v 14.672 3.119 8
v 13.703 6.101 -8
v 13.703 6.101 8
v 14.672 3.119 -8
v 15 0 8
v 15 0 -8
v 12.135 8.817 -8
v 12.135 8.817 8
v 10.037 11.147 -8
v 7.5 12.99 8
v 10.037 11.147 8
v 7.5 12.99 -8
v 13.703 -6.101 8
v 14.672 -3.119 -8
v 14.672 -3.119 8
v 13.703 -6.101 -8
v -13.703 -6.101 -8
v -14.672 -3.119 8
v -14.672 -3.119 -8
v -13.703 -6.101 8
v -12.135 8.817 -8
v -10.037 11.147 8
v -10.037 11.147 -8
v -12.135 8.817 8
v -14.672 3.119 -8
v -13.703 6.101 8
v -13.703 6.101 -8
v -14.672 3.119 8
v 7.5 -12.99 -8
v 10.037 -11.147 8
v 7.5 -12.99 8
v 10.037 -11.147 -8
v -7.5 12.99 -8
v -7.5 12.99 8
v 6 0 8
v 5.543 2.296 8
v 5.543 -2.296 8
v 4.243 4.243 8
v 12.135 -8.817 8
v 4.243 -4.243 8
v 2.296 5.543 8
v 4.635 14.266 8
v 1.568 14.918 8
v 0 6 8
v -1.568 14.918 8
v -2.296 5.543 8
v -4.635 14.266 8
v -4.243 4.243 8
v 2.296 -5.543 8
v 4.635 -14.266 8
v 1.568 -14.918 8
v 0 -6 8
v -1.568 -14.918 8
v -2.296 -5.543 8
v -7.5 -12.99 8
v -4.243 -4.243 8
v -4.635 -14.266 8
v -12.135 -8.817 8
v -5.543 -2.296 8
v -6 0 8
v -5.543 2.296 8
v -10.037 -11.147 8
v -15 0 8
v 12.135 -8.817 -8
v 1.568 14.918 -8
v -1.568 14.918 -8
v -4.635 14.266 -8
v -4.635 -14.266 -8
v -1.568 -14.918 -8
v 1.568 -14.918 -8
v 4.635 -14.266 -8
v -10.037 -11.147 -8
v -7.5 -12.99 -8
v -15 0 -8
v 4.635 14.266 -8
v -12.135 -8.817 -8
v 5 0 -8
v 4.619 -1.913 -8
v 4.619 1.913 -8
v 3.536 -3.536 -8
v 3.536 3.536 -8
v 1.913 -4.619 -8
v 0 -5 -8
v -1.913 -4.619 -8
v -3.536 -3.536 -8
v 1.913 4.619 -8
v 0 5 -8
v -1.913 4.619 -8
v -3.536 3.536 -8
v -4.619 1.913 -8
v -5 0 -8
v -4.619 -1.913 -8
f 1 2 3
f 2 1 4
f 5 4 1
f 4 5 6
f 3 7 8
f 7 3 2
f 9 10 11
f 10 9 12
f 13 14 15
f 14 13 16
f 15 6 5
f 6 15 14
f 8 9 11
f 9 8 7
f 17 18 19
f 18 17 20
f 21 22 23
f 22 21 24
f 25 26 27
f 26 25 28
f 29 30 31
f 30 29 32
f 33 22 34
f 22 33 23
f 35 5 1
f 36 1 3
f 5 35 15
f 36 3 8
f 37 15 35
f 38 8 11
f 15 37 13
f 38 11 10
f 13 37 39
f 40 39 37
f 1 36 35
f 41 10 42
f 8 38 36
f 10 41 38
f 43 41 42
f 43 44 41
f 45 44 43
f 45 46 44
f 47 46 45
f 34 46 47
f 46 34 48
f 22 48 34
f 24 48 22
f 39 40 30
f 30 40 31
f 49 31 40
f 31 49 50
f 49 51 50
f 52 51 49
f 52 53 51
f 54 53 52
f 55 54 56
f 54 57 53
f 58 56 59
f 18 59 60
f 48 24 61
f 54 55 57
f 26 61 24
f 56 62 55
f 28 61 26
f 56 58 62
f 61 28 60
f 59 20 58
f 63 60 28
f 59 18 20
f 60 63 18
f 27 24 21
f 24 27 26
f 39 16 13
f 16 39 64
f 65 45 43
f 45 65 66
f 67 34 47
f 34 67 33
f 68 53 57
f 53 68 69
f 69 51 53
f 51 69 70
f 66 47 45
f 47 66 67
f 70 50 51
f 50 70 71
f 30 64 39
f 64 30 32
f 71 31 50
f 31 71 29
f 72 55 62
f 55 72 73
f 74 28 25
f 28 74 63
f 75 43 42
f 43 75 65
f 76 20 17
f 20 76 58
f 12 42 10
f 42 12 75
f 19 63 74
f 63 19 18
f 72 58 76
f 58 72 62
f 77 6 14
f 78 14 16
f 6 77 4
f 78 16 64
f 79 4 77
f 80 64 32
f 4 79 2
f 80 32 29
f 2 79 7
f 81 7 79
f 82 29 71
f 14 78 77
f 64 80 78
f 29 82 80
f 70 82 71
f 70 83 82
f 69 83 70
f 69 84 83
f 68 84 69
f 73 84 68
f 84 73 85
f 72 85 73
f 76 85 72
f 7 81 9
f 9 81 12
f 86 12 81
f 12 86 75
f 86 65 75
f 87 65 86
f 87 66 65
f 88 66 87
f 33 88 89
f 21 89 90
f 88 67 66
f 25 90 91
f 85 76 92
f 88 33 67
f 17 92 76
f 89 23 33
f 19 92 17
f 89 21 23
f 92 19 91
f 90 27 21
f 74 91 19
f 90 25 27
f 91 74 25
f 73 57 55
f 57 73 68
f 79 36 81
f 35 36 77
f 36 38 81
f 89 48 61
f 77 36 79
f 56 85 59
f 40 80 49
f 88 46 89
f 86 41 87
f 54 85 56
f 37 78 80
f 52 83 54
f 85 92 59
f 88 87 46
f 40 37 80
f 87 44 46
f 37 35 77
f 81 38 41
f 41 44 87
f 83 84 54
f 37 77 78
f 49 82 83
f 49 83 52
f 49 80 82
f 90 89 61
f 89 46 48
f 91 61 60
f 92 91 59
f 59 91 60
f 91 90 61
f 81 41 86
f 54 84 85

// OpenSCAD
// Parameters
outer_diameter = 30;  // Outer diameter of the hub
height = 16;          // Reduced height to better match the original model
inner_diameter_top = 10;  // Inner hole diameter at the top
inner_diameter_bottom = 12; // Adjusted inner hole diameter at the bottom for a less pronounced conical shape

// Module to create the cylindrical hub with a conical hole
module cylindrical_hub() {
    difference() {
        // Main cylindrical body
        cylinder(h=height, d=outer_diameter, center=true);
        
        // Conical inner hole
        translate([0, 0, -height/2])
        linear_extrude(height=height, scale=inner_diameter_bottom/inner_diameter_top)
        circle(d=inner_diameter_top);
    }
}

// Render the cylindrical hub
cylindrical_hub();
